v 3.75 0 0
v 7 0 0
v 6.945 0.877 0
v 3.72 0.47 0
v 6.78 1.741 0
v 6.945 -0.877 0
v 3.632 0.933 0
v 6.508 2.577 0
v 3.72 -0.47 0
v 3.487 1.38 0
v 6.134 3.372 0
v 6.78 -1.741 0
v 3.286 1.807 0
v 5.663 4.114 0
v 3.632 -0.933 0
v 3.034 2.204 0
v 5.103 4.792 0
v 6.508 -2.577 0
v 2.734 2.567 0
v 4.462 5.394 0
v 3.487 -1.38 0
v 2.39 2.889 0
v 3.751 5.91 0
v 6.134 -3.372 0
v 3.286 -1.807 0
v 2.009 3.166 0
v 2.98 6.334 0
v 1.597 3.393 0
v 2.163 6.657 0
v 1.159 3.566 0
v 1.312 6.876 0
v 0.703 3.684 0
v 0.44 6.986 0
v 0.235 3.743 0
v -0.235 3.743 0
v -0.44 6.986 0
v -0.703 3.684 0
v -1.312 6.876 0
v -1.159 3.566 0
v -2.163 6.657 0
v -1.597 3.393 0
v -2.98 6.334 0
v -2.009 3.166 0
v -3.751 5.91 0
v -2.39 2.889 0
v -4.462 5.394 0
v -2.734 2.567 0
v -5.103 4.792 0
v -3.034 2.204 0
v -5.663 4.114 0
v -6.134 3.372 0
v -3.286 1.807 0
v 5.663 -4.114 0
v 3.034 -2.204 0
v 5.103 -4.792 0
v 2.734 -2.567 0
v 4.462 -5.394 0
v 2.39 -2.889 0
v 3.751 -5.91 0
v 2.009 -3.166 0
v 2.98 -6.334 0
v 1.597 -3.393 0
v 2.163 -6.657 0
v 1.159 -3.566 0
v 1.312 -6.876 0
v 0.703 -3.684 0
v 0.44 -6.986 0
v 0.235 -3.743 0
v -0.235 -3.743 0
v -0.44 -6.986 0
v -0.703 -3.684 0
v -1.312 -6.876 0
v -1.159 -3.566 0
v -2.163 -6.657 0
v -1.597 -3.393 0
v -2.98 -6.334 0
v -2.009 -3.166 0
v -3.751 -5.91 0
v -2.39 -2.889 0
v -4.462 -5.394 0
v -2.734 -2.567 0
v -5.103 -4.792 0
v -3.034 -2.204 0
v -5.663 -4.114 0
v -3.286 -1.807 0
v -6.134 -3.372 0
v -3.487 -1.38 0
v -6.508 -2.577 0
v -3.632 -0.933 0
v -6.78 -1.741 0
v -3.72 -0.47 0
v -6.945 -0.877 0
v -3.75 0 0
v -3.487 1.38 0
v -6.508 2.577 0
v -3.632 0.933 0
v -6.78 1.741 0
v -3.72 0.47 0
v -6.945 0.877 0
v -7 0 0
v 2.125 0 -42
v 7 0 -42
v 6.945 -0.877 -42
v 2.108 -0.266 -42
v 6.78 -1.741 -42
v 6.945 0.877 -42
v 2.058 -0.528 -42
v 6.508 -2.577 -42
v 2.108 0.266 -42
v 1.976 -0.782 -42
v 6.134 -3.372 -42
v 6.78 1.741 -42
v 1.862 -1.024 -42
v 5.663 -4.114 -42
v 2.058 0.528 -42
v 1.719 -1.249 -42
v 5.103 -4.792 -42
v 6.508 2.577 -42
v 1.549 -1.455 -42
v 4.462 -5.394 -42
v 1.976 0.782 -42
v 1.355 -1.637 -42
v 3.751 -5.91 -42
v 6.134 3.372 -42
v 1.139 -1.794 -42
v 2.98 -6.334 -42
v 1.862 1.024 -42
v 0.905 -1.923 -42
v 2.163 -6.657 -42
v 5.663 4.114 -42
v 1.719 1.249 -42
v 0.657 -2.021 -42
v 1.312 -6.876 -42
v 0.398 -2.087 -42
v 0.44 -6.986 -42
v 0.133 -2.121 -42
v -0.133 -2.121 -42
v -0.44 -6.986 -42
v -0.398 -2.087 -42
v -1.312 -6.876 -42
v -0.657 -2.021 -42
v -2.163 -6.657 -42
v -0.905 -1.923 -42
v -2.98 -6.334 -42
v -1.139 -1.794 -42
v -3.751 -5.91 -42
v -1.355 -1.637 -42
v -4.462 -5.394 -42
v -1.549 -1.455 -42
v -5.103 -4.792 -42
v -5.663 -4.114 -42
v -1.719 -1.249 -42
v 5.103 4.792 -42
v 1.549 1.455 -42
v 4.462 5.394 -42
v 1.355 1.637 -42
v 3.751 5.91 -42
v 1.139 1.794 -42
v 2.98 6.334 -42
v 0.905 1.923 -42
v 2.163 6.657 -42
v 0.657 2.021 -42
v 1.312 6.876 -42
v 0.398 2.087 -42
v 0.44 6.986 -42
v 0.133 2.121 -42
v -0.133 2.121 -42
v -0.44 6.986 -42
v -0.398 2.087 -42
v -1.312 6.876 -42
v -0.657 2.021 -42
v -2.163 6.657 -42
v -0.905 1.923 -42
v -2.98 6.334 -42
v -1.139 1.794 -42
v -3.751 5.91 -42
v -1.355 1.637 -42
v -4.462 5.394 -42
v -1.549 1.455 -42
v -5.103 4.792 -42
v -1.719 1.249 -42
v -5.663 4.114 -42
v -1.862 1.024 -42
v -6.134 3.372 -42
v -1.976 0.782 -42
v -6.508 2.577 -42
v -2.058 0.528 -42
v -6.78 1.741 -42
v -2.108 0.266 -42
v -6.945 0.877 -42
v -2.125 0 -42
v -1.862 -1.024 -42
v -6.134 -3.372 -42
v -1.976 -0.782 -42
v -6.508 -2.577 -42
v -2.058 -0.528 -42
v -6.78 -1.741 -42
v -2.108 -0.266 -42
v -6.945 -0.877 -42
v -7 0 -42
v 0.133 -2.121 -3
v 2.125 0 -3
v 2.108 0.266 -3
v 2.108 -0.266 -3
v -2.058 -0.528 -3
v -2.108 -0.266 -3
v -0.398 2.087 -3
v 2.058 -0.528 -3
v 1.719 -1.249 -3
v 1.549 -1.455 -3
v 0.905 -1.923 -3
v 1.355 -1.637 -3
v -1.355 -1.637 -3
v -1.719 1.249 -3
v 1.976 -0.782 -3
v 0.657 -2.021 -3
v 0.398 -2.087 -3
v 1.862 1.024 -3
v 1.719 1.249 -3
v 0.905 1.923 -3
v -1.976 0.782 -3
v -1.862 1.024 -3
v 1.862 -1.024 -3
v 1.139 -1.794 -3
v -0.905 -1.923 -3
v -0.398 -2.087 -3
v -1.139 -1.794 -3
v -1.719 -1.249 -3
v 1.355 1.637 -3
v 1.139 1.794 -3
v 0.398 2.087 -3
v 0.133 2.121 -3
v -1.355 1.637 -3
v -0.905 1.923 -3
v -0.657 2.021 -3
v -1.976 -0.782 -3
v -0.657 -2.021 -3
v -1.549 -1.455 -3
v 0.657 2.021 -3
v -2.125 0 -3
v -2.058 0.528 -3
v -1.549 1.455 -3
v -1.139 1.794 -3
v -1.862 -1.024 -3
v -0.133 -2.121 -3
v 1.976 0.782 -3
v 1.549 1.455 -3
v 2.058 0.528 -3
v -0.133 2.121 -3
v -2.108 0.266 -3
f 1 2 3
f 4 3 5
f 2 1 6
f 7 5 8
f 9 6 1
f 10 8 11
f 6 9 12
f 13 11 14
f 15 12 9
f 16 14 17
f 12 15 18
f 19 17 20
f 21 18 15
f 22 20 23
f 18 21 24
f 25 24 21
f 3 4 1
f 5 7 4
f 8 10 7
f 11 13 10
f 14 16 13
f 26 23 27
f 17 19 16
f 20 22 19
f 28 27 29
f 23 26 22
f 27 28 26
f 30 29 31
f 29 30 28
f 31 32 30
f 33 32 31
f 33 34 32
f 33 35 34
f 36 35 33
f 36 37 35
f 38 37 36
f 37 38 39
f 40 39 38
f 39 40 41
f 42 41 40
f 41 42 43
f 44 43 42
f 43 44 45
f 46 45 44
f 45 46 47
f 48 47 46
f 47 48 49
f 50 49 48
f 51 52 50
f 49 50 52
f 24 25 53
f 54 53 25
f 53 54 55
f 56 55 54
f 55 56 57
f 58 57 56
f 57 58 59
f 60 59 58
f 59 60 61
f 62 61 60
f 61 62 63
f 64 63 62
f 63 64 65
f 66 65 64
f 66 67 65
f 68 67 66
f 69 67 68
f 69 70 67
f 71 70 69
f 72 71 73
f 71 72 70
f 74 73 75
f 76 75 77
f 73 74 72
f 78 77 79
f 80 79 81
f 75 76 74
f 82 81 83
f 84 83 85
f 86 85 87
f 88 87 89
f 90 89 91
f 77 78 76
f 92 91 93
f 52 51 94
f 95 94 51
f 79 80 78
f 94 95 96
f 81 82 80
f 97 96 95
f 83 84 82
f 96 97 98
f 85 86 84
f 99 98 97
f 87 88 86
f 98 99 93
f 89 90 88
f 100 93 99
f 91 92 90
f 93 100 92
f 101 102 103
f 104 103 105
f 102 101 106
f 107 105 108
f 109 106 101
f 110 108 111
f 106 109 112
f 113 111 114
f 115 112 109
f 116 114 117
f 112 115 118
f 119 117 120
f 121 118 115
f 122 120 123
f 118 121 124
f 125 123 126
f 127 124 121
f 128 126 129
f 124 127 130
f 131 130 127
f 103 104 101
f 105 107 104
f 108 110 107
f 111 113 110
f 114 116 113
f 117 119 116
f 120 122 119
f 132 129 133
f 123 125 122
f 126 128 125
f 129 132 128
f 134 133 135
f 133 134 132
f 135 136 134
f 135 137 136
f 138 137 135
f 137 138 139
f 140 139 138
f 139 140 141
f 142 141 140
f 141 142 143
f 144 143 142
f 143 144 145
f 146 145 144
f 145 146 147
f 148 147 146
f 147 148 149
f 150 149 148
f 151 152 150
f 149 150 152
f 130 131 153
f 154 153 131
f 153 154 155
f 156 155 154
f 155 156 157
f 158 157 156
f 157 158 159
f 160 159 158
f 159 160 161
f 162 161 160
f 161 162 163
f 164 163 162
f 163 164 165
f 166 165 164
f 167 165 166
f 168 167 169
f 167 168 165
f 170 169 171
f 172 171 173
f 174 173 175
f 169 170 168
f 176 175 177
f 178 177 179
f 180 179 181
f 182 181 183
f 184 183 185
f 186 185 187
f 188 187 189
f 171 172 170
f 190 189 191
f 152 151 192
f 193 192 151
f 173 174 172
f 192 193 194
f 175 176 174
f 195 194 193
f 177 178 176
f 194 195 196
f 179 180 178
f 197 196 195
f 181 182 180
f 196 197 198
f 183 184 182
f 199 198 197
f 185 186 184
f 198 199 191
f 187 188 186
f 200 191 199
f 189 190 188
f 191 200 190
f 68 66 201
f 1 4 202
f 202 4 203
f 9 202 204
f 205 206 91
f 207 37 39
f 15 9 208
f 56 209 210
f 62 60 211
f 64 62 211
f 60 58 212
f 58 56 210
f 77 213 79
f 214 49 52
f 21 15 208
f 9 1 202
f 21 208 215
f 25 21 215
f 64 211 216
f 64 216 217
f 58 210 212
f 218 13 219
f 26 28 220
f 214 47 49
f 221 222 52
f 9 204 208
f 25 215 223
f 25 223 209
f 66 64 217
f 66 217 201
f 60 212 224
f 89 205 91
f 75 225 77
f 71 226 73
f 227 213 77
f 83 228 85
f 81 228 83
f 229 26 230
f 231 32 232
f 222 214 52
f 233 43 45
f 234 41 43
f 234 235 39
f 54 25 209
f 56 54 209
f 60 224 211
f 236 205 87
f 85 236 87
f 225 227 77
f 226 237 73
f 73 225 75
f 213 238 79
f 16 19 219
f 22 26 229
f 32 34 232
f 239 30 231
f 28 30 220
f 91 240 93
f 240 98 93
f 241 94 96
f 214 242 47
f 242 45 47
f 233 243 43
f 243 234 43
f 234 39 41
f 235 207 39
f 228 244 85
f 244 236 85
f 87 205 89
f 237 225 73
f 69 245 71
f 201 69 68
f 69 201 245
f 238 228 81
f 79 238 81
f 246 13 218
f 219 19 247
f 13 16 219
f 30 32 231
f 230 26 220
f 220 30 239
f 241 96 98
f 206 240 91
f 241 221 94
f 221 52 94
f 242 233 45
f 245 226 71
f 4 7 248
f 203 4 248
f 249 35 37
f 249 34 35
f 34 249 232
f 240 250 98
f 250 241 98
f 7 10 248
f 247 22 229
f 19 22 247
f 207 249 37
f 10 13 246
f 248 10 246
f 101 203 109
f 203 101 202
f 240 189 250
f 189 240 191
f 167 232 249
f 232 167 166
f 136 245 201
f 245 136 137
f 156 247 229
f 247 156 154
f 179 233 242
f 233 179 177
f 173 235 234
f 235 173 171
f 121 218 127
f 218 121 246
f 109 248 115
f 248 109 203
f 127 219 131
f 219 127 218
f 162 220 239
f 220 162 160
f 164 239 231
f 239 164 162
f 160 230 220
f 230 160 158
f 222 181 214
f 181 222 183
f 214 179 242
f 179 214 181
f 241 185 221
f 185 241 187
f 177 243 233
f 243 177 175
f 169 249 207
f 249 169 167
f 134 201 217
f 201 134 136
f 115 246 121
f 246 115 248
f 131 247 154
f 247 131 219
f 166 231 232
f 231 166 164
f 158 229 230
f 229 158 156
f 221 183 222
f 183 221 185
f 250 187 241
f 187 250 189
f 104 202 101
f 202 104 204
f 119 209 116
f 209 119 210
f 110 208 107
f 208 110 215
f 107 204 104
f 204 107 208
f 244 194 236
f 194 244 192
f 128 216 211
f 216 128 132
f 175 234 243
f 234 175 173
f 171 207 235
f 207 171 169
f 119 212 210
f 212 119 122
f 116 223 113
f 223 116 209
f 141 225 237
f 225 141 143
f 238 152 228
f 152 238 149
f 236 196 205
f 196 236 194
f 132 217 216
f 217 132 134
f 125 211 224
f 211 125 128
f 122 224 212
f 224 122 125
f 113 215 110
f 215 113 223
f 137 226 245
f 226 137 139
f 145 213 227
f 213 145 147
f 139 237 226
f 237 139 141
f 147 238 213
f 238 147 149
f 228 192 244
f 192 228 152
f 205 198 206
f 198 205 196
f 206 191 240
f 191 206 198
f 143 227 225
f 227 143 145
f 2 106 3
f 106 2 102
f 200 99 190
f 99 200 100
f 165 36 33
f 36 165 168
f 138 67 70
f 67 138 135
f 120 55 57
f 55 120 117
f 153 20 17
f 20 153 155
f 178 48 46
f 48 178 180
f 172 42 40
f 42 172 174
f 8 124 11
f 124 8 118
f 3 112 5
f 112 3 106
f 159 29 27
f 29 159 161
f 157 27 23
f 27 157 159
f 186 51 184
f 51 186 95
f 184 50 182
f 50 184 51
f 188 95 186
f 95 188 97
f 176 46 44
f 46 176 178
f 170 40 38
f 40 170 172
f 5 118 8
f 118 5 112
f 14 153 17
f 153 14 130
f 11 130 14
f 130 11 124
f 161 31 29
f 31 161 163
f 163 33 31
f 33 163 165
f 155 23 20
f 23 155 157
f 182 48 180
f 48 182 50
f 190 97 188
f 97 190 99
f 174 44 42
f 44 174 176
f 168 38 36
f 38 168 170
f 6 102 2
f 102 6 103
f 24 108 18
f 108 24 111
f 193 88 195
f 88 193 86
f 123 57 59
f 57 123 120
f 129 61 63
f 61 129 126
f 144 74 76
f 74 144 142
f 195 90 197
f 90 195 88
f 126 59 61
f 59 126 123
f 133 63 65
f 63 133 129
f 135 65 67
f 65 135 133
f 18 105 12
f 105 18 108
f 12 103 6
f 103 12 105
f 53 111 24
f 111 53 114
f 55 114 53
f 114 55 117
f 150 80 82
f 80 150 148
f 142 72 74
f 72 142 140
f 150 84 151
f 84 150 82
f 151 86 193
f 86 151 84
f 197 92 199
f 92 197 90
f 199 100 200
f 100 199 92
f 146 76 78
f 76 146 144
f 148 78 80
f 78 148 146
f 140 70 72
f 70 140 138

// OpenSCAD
$fn = 50;


difference() {
	union() {
		translate(v = [0, 0, -42.0000000000]) {
			cylinder(h = 42, r = 7.0000000000);
		}
		cylinder(h = 0, r = 16.0000000000);
	}
	union() {
		translate(v = [0, 0, 0]) {
			rotate(a = [0, 0, 0]) {
				difference() {
					union() {
						#translate(v = [0, 0, -42.0000000000]) {
							cylinder(h = 42, r = 2.0000000000);
						}
						#translate(v = [0, 0, -3]) {
							cylinder(h = 3, r1 = 2.1250000000, r2 = 3.7500000000);
						}
						#translate(v = [0, 0, -42.0000000000]) {
							cylinder(h = 42, r = 2.1250000000);
						}
						#translate(v = [0, 0, -42.0000000000]) {
							cylinder(h = 42, r = 2.0000000000);
						}
					}
					union();
				}
			}
		}
	}
}
